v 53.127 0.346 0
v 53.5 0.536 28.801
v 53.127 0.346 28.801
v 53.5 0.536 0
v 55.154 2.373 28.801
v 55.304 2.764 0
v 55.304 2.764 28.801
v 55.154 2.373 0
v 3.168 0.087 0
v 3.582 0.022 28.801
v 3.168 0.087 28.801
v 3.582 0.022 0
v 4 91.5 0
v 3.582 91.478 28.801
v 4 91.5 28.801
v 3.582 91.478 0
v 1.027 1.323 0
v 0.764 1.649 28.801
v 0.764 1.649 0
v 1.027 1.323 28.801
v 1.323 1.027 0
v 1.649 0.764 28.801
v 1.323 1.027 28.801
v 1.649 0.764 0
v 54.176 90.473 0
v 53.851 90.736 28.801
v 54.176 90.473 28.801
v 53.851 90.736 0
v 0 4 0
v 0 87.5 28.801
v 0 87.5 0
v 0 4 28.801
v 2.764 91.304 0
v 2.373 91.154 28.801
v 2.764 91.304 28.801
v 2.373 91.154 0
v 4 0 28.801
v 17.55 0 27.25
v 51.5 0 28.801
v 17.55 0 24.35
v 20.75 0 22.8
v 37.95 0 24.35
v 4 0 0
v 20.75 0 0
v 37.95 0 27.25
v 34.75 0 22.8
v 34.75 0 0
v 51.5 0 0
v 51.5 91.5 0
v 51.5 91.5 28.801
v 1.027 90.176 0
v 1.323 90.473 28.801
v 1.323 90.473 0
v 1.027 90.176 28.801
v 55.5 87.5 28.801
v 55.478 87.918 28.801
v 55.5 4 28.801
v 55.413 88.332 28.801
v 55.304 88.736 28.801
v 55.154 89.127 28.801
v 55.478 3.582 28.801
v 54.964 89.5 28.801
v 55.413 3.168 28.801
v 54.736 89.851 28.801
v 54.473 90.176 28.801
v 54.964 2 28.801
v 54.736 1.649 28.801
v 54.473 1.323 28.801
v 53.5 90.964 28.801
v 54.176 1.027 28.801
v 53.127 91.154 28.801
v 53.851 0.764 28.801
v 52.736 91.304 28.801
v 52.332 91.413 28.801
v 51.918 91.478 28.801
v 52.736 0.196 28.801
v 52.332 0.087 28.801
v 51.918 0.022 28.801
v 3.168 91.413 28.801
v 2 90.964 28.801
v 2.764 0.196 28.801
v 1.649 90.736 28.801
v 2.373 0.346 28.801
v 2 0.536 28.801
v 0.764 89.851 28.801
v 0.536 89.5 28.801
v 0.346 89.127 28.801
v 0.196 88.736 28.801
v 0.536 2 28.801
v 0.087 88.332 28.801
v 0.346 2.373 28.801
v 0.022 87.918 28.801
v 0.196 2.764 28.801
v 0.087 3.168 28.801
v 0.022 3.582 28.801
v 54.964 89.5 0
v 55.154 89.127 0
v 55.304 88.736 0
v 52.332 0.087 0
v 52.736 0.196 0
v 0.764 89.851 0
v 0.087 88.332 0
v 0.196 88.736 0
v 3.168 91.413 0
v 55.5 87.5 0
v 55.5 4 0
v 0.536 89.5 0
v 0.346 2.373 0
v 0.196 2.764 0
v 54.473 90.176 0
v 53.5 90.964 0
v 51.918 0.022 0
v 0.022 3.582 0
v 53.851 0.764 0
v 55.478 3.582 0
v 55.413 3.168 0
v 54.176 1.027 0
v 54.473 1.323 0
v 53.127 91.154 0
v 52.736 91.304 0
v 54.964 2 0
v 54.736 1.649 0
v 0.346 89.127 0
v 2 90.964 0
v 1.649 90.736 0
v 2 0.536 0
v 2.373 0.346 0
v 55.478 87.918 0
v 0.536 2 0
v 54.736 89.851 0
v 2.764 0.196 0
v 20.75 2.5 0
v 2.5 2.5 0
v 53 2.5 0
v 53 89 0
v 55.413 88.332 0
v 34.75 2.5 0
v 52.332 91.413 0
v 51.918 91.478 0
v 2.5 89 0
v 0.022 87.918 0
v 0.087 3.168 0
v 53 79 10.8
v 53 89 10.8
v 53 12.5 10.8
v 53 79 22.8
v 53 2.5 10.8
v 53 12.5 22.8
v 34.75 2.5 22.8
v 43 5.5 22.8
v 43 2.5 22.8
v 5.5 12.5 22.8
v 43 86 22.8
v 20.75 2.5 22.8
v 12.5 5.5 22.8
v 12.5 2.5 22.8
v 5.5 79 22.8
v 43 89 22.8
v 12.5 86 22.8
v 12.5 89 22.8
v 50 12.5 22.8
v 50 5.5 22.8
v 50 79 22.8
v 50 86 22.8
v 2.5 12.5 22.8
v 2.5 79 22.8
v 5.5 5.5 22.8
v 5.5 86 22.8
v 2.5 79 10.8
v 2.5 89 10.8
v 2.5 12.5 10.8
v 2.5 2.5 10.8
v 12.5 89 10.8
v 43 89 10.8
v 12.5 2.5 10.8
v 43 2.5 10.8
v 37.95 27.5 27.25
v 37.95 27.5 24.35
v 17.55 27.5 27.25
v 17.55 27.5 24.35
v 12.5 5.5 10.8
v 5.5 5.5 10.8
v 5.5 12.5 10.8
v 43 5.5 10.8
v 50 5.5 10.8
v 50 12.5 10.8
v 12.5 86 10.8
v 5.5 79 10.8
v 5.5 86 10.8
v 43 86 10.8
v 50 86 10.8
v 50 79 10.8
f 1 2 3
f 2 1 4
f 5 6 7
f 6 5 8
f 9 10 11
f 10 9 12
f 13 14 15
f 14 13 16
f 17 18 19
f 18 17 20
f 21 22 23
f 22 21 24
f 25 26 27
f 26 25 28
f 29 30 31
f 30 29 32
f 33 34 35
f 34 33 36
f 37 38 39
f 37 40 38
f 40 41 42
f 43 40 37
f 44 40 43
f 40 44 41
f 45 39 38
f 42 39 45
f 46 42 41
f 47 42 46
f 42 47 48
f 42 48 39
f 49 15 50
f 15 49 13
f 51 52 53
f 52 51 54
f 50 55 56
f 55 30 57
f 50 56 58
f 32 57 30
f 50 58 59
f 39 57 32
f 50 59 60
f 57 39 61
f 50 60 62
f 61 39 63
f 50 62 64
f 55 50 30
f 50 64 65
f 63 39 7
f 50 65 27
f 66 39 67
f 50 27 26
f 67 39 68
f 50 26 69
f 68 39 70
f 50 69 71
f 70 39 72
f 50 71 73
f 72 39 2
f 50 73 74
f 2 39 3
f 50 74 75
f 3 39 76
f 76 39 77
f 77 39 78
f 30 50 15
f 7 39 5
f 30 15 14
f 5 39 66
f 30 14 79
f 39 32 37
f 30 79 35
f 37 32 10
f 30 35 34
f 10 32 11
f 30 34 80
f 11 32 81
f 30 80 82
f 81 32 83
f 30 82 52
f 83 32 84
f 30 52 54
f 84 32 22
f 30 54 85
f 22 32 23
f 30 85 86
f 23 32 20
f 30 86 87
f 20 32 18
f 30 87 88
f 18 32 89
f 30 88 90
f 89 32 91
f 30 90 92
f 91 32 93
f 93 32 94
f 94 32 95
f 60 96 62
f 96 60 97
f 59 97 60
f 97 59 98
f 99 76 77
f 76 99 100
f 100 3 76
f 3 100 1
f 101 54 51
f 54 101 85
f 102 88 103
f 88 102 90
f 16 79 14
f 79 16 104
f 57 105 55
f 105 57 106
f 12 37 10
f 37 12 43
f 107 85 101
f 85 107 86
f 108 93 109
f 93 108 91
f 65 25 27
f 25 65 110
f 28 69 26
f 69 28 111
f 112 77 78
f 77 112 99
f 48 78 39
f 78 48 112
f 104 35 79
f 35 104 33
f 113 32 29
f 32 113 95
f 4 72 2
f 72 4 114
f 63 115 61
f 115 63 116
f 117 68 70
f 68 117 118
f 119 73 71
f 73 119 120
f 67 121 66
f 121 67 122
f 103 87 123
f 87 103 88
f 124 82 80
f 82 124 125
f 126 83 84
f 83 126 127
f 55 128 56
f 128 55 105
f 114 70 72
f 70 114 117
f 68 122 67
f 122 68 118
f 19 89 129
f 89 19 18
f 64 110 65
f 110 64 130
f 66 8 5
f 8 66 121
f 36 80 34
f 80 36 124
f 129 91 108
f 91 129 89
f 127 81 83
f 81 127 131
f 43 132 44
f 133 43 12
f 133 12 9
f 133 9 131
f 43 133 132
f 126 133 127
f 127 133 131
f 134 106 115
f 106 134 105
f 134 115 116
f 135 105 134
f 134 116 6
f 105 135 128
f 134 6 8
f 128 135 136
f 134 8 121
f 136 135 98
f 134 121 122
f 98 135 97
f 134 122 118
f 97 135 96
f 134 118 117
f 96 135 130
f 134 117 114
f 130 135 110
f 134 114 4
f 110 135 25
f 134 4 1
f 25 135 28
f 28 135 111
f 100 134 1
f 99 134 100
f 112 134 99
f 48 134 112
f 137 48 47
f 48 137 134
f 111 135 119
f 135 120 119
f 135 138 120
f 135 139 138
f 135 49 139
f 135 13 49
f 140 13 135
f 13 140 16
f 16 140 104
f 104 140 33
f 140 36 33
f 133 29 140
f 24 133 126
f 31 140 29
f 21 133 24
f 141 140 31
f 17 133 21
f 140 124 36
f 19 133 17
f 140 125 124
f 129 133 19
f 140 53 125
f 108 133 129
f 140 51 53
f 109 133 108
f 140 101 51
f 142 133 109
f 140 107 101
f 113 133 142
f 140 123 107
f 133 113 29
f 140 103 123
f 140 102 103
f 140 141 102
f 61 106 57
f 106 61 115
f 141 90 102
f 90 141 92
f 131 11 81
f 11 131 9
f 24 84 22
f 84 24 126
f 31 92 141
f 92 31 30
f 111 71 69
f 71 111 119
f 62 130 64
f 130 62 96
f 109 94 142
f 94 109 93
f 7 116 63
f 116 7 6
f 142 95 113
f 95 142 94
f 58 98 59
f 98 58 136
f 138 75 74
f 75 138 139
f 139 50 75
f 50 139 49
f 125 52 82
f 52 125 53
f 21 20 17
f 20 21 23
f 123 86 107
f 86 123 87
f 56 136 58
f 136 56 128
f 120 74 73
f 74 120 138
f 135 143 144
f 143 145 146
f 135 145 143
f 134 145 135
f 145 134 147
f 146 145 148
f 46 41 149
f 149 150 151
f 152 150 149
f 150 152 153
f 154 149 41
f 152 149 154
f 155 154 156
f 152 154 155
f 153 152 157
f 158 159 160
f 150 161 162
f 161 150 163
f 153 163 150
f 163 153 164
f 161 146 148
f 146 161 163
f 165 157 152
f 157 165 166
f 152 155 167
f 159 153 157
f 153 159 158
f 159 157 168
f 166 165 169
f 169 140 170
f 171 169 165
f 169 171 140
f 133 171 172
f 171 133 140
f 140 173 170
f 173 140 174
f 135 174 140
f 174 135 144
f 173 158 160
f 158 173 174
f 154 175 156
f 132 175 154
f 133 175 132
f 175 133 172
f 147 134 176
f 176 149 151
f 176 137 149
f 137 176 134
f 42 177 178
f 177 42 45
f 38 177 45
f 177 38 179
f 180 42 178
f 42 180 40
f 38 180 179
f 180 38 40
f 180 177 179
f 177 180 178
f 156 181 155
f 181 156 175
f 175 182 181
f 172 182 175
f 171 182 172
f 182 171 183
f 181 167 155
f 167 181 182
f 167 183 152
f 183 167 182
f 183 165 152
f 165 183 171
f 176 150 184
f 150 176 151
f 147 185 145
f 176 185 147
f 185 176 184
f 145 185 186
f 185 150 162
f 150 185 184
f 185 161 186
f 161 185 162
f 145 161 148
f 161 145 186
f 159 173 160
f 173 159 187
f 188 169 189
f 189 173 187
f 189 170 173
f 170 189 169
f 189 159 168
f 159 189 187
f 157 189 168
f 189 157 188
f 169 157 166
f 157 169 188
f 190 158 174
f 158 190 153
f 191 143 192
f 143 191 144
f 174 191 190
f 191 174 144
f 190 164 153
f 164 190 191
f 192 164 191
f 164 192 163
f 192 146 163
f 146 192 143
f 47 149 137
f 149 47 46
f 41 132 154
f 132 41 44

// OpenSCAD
/*
 * Vibe Bike Display Mount v4.1
 * ============================
 * Coords: X=width, Y=height(bottom->top), Z=depth(front->back)
 * Board slides in from front (Z=0). Screen faces out.
 * 4 L-bracket spacers behind board create battery space.
 * Plate slot and USB on bottom (Y=0).
 *
 * Front view (looking along Z into tray):
 *   ┌─────────────────────┐
 *   │ ┌──┐           ┌──┐ │  <- brackets (top corners)
 *   │ └──┤           ├──┘ │
 *   │    │  board    │    │
 *   │    │  slides   │    │
 *   │    │  in here  │    │
 *   │ ┌──┤           ├──┐ │
 *   │ └──┘           └──┘ │  <- brackets (bottom corners)
 *   └─────────────────────┘
 *
 * Print: Open side (Z=0) facing up.
 */

$fn = 60;

// ================================================================
//  MEASUREMENTS
// ================================================================

BOARD_W      = 50.0;    // PCB width (X)
BOARD_H      = 86.0;    // PCB height (Y)
BOARD_T      = 10.6;    // total thickness (Z, depth when slid in)

PLATE_W      = 20.0;    // metal plate width
PLATE_T      = 2.5;     // metal plate thickness

// ================================================================
//  DESIGN PARAMETERS
// ================================================================

WALL         = 2.5;     // wall thickness
TOL          = 0.2;     // tolerance (gap between board back and bracket face)
BATT_SPACE   = 12.0;    // space behind board for battery/wires (Z)
BACK_WALL    = 6.0;     // back wall thickness (holds plate slot)
SLOT_H       = 25.0;    // plate slot engagement height (Y)
USB_W        = 14.0;    // USB-C slot width
CORNER_R     = 4.0;     // outer corner radius

// Corner brackets (in X-Y plane, extend along Z)
BOARD_GAP    = 0.25;    // clearance between board edge and cavity wall (friction fit)
BRACKET_W    = 3.0;     // bracket arm width (> BOARD_GAP so it overlaps under board)
BRACKET_ARM  = 10.0;    // bracket arm length along wall

// ================================================================
//  COMPUTED
// ================================================================

inner_w    = BOARD_W + BOARD_GAP * 2;           // 50.5
inner_h    = BOARD_H + BOARD_GAP * 2;           // 86.5
cavity_d   = BOARD_T + TOL + BATT_SPACE;        // 22.8

frame_w    = inner_w + WALL * 2;                // 55.5
frame_h    = inner_h + WALL * 2;                // 91.5
frame_d    = cavity_d + BACK_WALL;              // 28.8

// Board position (centered in cavity)
board_x    = WALL + BOARD_GAP;                  // 2.75
board_y    = WALL + BOARD_GAP;                  // 2.75

// Plate slot (centered X, in back wall)
slot_w     = PLATE_W + TOL * 2;
slot_t     = PLATE_T + TOL * 2;
slot_z     = frame_d - BACK_WALL + (BACK_WALL - slot_t) / 2;

// ================================================================
//  HELPERS
// ================================================================

module rounded_box(w, h, d, r) {
    translate([r, r, 0])
        minkowski() {
            cube([w - r*2, h - r*2, d]);
            cylinder(r=r, h=0.001);
        }
}

// ================================================================
//  MODEL
// ================================================================

module mount() {
    difference() {
        // ---- Build body + brackets, then cut USB last ----
        union() {
            difference() {
                // Solid body (rounded corners in X-Y)
                rounded_box(frame_w, frame_h, frame_d, CORNER_R);

                // Cavity (open at front Z=0, board slides in here)
                translate([WALL, WALL, -1])
                    cube([inner_w, inner_h, cavity_d + 1]);

                // Plate slot (in back wall, open at bottom Y=0)
                translate([(frame_w - slot_w) / 2, -1, slot_z])
                    cube([slot_w, SLOT_H + WALL + 1, slot_t]);
            }

            // 4 L-bracket spacers (behind board, in battery zone)
            bz = BOARD_T + TOL;   // bracket start Z (just behind board)
            bd = BATT_SPACE;       // bracket depth along Z

            // Bottom-left
            translate([WALL, WALL, bz]) {
                cube([BRACKET_ARM, BRACKET_W, bd]);
                cube([BRACKET_W, BRACKET_ARM, bd]);
            }

            // Bottom-right
            translate([WALL + inner_w, WALL, bz])
                mirror([1, 0, 0]) {
                    cube([BRACKET_ARM, BRACKET_W, bd]);
                    cube([BRACKET_W, BRACKET_ARM, bd]);
                }

            // Top-left
            translate([WALL, WALL + inner_h, bz])
                mirror([0, 1, 0]) {
                    cube([BRACKET_ARM, BRACKET_W, bd]);
                    cube([BRACKET_W, BRACKET_ARM, bd]);
                }

            // Top-right
            translate([WALL + inner_w, WALL + inner_h, bz])
                mirror([1, 0, 0]) mirror([0, 1, 0]) {
                    cube([BRACKET_ARM, BRACKET_W, bd]);
                    cube([BRACKET_W, BRACKET_ARM, bd]);
                }
        }

        // USB-C slot (cut LAST so it goes through wall + brackets)
        // Full cavity depth in Z, generous height for cable clearance
        translate([(frame_w - USB_W) / 2, -0.01, 0])
            cube([USB_W, board_y + 5, cavity_d]);
    }
}

// ================================================================
//  RENDER
// ================================================================

mount();

// ================================================================
//  VISUALIZATION  (uncomment to check fit)
// ================================================================

// Board (slid in from front):
// color("green", 0.25)
//     translate([board_x, board_y, 0])
//         cube([BOARD_W, BOARD_H, BOARD_T]);

// Metal plate:
// color("silver", 0.3)
//     translate([(frame_w - PLATE_W)/2, -20, slot_z + TOL])
//         cube([PLATE_W, SLOT_H + 25, PLATE_T]);
